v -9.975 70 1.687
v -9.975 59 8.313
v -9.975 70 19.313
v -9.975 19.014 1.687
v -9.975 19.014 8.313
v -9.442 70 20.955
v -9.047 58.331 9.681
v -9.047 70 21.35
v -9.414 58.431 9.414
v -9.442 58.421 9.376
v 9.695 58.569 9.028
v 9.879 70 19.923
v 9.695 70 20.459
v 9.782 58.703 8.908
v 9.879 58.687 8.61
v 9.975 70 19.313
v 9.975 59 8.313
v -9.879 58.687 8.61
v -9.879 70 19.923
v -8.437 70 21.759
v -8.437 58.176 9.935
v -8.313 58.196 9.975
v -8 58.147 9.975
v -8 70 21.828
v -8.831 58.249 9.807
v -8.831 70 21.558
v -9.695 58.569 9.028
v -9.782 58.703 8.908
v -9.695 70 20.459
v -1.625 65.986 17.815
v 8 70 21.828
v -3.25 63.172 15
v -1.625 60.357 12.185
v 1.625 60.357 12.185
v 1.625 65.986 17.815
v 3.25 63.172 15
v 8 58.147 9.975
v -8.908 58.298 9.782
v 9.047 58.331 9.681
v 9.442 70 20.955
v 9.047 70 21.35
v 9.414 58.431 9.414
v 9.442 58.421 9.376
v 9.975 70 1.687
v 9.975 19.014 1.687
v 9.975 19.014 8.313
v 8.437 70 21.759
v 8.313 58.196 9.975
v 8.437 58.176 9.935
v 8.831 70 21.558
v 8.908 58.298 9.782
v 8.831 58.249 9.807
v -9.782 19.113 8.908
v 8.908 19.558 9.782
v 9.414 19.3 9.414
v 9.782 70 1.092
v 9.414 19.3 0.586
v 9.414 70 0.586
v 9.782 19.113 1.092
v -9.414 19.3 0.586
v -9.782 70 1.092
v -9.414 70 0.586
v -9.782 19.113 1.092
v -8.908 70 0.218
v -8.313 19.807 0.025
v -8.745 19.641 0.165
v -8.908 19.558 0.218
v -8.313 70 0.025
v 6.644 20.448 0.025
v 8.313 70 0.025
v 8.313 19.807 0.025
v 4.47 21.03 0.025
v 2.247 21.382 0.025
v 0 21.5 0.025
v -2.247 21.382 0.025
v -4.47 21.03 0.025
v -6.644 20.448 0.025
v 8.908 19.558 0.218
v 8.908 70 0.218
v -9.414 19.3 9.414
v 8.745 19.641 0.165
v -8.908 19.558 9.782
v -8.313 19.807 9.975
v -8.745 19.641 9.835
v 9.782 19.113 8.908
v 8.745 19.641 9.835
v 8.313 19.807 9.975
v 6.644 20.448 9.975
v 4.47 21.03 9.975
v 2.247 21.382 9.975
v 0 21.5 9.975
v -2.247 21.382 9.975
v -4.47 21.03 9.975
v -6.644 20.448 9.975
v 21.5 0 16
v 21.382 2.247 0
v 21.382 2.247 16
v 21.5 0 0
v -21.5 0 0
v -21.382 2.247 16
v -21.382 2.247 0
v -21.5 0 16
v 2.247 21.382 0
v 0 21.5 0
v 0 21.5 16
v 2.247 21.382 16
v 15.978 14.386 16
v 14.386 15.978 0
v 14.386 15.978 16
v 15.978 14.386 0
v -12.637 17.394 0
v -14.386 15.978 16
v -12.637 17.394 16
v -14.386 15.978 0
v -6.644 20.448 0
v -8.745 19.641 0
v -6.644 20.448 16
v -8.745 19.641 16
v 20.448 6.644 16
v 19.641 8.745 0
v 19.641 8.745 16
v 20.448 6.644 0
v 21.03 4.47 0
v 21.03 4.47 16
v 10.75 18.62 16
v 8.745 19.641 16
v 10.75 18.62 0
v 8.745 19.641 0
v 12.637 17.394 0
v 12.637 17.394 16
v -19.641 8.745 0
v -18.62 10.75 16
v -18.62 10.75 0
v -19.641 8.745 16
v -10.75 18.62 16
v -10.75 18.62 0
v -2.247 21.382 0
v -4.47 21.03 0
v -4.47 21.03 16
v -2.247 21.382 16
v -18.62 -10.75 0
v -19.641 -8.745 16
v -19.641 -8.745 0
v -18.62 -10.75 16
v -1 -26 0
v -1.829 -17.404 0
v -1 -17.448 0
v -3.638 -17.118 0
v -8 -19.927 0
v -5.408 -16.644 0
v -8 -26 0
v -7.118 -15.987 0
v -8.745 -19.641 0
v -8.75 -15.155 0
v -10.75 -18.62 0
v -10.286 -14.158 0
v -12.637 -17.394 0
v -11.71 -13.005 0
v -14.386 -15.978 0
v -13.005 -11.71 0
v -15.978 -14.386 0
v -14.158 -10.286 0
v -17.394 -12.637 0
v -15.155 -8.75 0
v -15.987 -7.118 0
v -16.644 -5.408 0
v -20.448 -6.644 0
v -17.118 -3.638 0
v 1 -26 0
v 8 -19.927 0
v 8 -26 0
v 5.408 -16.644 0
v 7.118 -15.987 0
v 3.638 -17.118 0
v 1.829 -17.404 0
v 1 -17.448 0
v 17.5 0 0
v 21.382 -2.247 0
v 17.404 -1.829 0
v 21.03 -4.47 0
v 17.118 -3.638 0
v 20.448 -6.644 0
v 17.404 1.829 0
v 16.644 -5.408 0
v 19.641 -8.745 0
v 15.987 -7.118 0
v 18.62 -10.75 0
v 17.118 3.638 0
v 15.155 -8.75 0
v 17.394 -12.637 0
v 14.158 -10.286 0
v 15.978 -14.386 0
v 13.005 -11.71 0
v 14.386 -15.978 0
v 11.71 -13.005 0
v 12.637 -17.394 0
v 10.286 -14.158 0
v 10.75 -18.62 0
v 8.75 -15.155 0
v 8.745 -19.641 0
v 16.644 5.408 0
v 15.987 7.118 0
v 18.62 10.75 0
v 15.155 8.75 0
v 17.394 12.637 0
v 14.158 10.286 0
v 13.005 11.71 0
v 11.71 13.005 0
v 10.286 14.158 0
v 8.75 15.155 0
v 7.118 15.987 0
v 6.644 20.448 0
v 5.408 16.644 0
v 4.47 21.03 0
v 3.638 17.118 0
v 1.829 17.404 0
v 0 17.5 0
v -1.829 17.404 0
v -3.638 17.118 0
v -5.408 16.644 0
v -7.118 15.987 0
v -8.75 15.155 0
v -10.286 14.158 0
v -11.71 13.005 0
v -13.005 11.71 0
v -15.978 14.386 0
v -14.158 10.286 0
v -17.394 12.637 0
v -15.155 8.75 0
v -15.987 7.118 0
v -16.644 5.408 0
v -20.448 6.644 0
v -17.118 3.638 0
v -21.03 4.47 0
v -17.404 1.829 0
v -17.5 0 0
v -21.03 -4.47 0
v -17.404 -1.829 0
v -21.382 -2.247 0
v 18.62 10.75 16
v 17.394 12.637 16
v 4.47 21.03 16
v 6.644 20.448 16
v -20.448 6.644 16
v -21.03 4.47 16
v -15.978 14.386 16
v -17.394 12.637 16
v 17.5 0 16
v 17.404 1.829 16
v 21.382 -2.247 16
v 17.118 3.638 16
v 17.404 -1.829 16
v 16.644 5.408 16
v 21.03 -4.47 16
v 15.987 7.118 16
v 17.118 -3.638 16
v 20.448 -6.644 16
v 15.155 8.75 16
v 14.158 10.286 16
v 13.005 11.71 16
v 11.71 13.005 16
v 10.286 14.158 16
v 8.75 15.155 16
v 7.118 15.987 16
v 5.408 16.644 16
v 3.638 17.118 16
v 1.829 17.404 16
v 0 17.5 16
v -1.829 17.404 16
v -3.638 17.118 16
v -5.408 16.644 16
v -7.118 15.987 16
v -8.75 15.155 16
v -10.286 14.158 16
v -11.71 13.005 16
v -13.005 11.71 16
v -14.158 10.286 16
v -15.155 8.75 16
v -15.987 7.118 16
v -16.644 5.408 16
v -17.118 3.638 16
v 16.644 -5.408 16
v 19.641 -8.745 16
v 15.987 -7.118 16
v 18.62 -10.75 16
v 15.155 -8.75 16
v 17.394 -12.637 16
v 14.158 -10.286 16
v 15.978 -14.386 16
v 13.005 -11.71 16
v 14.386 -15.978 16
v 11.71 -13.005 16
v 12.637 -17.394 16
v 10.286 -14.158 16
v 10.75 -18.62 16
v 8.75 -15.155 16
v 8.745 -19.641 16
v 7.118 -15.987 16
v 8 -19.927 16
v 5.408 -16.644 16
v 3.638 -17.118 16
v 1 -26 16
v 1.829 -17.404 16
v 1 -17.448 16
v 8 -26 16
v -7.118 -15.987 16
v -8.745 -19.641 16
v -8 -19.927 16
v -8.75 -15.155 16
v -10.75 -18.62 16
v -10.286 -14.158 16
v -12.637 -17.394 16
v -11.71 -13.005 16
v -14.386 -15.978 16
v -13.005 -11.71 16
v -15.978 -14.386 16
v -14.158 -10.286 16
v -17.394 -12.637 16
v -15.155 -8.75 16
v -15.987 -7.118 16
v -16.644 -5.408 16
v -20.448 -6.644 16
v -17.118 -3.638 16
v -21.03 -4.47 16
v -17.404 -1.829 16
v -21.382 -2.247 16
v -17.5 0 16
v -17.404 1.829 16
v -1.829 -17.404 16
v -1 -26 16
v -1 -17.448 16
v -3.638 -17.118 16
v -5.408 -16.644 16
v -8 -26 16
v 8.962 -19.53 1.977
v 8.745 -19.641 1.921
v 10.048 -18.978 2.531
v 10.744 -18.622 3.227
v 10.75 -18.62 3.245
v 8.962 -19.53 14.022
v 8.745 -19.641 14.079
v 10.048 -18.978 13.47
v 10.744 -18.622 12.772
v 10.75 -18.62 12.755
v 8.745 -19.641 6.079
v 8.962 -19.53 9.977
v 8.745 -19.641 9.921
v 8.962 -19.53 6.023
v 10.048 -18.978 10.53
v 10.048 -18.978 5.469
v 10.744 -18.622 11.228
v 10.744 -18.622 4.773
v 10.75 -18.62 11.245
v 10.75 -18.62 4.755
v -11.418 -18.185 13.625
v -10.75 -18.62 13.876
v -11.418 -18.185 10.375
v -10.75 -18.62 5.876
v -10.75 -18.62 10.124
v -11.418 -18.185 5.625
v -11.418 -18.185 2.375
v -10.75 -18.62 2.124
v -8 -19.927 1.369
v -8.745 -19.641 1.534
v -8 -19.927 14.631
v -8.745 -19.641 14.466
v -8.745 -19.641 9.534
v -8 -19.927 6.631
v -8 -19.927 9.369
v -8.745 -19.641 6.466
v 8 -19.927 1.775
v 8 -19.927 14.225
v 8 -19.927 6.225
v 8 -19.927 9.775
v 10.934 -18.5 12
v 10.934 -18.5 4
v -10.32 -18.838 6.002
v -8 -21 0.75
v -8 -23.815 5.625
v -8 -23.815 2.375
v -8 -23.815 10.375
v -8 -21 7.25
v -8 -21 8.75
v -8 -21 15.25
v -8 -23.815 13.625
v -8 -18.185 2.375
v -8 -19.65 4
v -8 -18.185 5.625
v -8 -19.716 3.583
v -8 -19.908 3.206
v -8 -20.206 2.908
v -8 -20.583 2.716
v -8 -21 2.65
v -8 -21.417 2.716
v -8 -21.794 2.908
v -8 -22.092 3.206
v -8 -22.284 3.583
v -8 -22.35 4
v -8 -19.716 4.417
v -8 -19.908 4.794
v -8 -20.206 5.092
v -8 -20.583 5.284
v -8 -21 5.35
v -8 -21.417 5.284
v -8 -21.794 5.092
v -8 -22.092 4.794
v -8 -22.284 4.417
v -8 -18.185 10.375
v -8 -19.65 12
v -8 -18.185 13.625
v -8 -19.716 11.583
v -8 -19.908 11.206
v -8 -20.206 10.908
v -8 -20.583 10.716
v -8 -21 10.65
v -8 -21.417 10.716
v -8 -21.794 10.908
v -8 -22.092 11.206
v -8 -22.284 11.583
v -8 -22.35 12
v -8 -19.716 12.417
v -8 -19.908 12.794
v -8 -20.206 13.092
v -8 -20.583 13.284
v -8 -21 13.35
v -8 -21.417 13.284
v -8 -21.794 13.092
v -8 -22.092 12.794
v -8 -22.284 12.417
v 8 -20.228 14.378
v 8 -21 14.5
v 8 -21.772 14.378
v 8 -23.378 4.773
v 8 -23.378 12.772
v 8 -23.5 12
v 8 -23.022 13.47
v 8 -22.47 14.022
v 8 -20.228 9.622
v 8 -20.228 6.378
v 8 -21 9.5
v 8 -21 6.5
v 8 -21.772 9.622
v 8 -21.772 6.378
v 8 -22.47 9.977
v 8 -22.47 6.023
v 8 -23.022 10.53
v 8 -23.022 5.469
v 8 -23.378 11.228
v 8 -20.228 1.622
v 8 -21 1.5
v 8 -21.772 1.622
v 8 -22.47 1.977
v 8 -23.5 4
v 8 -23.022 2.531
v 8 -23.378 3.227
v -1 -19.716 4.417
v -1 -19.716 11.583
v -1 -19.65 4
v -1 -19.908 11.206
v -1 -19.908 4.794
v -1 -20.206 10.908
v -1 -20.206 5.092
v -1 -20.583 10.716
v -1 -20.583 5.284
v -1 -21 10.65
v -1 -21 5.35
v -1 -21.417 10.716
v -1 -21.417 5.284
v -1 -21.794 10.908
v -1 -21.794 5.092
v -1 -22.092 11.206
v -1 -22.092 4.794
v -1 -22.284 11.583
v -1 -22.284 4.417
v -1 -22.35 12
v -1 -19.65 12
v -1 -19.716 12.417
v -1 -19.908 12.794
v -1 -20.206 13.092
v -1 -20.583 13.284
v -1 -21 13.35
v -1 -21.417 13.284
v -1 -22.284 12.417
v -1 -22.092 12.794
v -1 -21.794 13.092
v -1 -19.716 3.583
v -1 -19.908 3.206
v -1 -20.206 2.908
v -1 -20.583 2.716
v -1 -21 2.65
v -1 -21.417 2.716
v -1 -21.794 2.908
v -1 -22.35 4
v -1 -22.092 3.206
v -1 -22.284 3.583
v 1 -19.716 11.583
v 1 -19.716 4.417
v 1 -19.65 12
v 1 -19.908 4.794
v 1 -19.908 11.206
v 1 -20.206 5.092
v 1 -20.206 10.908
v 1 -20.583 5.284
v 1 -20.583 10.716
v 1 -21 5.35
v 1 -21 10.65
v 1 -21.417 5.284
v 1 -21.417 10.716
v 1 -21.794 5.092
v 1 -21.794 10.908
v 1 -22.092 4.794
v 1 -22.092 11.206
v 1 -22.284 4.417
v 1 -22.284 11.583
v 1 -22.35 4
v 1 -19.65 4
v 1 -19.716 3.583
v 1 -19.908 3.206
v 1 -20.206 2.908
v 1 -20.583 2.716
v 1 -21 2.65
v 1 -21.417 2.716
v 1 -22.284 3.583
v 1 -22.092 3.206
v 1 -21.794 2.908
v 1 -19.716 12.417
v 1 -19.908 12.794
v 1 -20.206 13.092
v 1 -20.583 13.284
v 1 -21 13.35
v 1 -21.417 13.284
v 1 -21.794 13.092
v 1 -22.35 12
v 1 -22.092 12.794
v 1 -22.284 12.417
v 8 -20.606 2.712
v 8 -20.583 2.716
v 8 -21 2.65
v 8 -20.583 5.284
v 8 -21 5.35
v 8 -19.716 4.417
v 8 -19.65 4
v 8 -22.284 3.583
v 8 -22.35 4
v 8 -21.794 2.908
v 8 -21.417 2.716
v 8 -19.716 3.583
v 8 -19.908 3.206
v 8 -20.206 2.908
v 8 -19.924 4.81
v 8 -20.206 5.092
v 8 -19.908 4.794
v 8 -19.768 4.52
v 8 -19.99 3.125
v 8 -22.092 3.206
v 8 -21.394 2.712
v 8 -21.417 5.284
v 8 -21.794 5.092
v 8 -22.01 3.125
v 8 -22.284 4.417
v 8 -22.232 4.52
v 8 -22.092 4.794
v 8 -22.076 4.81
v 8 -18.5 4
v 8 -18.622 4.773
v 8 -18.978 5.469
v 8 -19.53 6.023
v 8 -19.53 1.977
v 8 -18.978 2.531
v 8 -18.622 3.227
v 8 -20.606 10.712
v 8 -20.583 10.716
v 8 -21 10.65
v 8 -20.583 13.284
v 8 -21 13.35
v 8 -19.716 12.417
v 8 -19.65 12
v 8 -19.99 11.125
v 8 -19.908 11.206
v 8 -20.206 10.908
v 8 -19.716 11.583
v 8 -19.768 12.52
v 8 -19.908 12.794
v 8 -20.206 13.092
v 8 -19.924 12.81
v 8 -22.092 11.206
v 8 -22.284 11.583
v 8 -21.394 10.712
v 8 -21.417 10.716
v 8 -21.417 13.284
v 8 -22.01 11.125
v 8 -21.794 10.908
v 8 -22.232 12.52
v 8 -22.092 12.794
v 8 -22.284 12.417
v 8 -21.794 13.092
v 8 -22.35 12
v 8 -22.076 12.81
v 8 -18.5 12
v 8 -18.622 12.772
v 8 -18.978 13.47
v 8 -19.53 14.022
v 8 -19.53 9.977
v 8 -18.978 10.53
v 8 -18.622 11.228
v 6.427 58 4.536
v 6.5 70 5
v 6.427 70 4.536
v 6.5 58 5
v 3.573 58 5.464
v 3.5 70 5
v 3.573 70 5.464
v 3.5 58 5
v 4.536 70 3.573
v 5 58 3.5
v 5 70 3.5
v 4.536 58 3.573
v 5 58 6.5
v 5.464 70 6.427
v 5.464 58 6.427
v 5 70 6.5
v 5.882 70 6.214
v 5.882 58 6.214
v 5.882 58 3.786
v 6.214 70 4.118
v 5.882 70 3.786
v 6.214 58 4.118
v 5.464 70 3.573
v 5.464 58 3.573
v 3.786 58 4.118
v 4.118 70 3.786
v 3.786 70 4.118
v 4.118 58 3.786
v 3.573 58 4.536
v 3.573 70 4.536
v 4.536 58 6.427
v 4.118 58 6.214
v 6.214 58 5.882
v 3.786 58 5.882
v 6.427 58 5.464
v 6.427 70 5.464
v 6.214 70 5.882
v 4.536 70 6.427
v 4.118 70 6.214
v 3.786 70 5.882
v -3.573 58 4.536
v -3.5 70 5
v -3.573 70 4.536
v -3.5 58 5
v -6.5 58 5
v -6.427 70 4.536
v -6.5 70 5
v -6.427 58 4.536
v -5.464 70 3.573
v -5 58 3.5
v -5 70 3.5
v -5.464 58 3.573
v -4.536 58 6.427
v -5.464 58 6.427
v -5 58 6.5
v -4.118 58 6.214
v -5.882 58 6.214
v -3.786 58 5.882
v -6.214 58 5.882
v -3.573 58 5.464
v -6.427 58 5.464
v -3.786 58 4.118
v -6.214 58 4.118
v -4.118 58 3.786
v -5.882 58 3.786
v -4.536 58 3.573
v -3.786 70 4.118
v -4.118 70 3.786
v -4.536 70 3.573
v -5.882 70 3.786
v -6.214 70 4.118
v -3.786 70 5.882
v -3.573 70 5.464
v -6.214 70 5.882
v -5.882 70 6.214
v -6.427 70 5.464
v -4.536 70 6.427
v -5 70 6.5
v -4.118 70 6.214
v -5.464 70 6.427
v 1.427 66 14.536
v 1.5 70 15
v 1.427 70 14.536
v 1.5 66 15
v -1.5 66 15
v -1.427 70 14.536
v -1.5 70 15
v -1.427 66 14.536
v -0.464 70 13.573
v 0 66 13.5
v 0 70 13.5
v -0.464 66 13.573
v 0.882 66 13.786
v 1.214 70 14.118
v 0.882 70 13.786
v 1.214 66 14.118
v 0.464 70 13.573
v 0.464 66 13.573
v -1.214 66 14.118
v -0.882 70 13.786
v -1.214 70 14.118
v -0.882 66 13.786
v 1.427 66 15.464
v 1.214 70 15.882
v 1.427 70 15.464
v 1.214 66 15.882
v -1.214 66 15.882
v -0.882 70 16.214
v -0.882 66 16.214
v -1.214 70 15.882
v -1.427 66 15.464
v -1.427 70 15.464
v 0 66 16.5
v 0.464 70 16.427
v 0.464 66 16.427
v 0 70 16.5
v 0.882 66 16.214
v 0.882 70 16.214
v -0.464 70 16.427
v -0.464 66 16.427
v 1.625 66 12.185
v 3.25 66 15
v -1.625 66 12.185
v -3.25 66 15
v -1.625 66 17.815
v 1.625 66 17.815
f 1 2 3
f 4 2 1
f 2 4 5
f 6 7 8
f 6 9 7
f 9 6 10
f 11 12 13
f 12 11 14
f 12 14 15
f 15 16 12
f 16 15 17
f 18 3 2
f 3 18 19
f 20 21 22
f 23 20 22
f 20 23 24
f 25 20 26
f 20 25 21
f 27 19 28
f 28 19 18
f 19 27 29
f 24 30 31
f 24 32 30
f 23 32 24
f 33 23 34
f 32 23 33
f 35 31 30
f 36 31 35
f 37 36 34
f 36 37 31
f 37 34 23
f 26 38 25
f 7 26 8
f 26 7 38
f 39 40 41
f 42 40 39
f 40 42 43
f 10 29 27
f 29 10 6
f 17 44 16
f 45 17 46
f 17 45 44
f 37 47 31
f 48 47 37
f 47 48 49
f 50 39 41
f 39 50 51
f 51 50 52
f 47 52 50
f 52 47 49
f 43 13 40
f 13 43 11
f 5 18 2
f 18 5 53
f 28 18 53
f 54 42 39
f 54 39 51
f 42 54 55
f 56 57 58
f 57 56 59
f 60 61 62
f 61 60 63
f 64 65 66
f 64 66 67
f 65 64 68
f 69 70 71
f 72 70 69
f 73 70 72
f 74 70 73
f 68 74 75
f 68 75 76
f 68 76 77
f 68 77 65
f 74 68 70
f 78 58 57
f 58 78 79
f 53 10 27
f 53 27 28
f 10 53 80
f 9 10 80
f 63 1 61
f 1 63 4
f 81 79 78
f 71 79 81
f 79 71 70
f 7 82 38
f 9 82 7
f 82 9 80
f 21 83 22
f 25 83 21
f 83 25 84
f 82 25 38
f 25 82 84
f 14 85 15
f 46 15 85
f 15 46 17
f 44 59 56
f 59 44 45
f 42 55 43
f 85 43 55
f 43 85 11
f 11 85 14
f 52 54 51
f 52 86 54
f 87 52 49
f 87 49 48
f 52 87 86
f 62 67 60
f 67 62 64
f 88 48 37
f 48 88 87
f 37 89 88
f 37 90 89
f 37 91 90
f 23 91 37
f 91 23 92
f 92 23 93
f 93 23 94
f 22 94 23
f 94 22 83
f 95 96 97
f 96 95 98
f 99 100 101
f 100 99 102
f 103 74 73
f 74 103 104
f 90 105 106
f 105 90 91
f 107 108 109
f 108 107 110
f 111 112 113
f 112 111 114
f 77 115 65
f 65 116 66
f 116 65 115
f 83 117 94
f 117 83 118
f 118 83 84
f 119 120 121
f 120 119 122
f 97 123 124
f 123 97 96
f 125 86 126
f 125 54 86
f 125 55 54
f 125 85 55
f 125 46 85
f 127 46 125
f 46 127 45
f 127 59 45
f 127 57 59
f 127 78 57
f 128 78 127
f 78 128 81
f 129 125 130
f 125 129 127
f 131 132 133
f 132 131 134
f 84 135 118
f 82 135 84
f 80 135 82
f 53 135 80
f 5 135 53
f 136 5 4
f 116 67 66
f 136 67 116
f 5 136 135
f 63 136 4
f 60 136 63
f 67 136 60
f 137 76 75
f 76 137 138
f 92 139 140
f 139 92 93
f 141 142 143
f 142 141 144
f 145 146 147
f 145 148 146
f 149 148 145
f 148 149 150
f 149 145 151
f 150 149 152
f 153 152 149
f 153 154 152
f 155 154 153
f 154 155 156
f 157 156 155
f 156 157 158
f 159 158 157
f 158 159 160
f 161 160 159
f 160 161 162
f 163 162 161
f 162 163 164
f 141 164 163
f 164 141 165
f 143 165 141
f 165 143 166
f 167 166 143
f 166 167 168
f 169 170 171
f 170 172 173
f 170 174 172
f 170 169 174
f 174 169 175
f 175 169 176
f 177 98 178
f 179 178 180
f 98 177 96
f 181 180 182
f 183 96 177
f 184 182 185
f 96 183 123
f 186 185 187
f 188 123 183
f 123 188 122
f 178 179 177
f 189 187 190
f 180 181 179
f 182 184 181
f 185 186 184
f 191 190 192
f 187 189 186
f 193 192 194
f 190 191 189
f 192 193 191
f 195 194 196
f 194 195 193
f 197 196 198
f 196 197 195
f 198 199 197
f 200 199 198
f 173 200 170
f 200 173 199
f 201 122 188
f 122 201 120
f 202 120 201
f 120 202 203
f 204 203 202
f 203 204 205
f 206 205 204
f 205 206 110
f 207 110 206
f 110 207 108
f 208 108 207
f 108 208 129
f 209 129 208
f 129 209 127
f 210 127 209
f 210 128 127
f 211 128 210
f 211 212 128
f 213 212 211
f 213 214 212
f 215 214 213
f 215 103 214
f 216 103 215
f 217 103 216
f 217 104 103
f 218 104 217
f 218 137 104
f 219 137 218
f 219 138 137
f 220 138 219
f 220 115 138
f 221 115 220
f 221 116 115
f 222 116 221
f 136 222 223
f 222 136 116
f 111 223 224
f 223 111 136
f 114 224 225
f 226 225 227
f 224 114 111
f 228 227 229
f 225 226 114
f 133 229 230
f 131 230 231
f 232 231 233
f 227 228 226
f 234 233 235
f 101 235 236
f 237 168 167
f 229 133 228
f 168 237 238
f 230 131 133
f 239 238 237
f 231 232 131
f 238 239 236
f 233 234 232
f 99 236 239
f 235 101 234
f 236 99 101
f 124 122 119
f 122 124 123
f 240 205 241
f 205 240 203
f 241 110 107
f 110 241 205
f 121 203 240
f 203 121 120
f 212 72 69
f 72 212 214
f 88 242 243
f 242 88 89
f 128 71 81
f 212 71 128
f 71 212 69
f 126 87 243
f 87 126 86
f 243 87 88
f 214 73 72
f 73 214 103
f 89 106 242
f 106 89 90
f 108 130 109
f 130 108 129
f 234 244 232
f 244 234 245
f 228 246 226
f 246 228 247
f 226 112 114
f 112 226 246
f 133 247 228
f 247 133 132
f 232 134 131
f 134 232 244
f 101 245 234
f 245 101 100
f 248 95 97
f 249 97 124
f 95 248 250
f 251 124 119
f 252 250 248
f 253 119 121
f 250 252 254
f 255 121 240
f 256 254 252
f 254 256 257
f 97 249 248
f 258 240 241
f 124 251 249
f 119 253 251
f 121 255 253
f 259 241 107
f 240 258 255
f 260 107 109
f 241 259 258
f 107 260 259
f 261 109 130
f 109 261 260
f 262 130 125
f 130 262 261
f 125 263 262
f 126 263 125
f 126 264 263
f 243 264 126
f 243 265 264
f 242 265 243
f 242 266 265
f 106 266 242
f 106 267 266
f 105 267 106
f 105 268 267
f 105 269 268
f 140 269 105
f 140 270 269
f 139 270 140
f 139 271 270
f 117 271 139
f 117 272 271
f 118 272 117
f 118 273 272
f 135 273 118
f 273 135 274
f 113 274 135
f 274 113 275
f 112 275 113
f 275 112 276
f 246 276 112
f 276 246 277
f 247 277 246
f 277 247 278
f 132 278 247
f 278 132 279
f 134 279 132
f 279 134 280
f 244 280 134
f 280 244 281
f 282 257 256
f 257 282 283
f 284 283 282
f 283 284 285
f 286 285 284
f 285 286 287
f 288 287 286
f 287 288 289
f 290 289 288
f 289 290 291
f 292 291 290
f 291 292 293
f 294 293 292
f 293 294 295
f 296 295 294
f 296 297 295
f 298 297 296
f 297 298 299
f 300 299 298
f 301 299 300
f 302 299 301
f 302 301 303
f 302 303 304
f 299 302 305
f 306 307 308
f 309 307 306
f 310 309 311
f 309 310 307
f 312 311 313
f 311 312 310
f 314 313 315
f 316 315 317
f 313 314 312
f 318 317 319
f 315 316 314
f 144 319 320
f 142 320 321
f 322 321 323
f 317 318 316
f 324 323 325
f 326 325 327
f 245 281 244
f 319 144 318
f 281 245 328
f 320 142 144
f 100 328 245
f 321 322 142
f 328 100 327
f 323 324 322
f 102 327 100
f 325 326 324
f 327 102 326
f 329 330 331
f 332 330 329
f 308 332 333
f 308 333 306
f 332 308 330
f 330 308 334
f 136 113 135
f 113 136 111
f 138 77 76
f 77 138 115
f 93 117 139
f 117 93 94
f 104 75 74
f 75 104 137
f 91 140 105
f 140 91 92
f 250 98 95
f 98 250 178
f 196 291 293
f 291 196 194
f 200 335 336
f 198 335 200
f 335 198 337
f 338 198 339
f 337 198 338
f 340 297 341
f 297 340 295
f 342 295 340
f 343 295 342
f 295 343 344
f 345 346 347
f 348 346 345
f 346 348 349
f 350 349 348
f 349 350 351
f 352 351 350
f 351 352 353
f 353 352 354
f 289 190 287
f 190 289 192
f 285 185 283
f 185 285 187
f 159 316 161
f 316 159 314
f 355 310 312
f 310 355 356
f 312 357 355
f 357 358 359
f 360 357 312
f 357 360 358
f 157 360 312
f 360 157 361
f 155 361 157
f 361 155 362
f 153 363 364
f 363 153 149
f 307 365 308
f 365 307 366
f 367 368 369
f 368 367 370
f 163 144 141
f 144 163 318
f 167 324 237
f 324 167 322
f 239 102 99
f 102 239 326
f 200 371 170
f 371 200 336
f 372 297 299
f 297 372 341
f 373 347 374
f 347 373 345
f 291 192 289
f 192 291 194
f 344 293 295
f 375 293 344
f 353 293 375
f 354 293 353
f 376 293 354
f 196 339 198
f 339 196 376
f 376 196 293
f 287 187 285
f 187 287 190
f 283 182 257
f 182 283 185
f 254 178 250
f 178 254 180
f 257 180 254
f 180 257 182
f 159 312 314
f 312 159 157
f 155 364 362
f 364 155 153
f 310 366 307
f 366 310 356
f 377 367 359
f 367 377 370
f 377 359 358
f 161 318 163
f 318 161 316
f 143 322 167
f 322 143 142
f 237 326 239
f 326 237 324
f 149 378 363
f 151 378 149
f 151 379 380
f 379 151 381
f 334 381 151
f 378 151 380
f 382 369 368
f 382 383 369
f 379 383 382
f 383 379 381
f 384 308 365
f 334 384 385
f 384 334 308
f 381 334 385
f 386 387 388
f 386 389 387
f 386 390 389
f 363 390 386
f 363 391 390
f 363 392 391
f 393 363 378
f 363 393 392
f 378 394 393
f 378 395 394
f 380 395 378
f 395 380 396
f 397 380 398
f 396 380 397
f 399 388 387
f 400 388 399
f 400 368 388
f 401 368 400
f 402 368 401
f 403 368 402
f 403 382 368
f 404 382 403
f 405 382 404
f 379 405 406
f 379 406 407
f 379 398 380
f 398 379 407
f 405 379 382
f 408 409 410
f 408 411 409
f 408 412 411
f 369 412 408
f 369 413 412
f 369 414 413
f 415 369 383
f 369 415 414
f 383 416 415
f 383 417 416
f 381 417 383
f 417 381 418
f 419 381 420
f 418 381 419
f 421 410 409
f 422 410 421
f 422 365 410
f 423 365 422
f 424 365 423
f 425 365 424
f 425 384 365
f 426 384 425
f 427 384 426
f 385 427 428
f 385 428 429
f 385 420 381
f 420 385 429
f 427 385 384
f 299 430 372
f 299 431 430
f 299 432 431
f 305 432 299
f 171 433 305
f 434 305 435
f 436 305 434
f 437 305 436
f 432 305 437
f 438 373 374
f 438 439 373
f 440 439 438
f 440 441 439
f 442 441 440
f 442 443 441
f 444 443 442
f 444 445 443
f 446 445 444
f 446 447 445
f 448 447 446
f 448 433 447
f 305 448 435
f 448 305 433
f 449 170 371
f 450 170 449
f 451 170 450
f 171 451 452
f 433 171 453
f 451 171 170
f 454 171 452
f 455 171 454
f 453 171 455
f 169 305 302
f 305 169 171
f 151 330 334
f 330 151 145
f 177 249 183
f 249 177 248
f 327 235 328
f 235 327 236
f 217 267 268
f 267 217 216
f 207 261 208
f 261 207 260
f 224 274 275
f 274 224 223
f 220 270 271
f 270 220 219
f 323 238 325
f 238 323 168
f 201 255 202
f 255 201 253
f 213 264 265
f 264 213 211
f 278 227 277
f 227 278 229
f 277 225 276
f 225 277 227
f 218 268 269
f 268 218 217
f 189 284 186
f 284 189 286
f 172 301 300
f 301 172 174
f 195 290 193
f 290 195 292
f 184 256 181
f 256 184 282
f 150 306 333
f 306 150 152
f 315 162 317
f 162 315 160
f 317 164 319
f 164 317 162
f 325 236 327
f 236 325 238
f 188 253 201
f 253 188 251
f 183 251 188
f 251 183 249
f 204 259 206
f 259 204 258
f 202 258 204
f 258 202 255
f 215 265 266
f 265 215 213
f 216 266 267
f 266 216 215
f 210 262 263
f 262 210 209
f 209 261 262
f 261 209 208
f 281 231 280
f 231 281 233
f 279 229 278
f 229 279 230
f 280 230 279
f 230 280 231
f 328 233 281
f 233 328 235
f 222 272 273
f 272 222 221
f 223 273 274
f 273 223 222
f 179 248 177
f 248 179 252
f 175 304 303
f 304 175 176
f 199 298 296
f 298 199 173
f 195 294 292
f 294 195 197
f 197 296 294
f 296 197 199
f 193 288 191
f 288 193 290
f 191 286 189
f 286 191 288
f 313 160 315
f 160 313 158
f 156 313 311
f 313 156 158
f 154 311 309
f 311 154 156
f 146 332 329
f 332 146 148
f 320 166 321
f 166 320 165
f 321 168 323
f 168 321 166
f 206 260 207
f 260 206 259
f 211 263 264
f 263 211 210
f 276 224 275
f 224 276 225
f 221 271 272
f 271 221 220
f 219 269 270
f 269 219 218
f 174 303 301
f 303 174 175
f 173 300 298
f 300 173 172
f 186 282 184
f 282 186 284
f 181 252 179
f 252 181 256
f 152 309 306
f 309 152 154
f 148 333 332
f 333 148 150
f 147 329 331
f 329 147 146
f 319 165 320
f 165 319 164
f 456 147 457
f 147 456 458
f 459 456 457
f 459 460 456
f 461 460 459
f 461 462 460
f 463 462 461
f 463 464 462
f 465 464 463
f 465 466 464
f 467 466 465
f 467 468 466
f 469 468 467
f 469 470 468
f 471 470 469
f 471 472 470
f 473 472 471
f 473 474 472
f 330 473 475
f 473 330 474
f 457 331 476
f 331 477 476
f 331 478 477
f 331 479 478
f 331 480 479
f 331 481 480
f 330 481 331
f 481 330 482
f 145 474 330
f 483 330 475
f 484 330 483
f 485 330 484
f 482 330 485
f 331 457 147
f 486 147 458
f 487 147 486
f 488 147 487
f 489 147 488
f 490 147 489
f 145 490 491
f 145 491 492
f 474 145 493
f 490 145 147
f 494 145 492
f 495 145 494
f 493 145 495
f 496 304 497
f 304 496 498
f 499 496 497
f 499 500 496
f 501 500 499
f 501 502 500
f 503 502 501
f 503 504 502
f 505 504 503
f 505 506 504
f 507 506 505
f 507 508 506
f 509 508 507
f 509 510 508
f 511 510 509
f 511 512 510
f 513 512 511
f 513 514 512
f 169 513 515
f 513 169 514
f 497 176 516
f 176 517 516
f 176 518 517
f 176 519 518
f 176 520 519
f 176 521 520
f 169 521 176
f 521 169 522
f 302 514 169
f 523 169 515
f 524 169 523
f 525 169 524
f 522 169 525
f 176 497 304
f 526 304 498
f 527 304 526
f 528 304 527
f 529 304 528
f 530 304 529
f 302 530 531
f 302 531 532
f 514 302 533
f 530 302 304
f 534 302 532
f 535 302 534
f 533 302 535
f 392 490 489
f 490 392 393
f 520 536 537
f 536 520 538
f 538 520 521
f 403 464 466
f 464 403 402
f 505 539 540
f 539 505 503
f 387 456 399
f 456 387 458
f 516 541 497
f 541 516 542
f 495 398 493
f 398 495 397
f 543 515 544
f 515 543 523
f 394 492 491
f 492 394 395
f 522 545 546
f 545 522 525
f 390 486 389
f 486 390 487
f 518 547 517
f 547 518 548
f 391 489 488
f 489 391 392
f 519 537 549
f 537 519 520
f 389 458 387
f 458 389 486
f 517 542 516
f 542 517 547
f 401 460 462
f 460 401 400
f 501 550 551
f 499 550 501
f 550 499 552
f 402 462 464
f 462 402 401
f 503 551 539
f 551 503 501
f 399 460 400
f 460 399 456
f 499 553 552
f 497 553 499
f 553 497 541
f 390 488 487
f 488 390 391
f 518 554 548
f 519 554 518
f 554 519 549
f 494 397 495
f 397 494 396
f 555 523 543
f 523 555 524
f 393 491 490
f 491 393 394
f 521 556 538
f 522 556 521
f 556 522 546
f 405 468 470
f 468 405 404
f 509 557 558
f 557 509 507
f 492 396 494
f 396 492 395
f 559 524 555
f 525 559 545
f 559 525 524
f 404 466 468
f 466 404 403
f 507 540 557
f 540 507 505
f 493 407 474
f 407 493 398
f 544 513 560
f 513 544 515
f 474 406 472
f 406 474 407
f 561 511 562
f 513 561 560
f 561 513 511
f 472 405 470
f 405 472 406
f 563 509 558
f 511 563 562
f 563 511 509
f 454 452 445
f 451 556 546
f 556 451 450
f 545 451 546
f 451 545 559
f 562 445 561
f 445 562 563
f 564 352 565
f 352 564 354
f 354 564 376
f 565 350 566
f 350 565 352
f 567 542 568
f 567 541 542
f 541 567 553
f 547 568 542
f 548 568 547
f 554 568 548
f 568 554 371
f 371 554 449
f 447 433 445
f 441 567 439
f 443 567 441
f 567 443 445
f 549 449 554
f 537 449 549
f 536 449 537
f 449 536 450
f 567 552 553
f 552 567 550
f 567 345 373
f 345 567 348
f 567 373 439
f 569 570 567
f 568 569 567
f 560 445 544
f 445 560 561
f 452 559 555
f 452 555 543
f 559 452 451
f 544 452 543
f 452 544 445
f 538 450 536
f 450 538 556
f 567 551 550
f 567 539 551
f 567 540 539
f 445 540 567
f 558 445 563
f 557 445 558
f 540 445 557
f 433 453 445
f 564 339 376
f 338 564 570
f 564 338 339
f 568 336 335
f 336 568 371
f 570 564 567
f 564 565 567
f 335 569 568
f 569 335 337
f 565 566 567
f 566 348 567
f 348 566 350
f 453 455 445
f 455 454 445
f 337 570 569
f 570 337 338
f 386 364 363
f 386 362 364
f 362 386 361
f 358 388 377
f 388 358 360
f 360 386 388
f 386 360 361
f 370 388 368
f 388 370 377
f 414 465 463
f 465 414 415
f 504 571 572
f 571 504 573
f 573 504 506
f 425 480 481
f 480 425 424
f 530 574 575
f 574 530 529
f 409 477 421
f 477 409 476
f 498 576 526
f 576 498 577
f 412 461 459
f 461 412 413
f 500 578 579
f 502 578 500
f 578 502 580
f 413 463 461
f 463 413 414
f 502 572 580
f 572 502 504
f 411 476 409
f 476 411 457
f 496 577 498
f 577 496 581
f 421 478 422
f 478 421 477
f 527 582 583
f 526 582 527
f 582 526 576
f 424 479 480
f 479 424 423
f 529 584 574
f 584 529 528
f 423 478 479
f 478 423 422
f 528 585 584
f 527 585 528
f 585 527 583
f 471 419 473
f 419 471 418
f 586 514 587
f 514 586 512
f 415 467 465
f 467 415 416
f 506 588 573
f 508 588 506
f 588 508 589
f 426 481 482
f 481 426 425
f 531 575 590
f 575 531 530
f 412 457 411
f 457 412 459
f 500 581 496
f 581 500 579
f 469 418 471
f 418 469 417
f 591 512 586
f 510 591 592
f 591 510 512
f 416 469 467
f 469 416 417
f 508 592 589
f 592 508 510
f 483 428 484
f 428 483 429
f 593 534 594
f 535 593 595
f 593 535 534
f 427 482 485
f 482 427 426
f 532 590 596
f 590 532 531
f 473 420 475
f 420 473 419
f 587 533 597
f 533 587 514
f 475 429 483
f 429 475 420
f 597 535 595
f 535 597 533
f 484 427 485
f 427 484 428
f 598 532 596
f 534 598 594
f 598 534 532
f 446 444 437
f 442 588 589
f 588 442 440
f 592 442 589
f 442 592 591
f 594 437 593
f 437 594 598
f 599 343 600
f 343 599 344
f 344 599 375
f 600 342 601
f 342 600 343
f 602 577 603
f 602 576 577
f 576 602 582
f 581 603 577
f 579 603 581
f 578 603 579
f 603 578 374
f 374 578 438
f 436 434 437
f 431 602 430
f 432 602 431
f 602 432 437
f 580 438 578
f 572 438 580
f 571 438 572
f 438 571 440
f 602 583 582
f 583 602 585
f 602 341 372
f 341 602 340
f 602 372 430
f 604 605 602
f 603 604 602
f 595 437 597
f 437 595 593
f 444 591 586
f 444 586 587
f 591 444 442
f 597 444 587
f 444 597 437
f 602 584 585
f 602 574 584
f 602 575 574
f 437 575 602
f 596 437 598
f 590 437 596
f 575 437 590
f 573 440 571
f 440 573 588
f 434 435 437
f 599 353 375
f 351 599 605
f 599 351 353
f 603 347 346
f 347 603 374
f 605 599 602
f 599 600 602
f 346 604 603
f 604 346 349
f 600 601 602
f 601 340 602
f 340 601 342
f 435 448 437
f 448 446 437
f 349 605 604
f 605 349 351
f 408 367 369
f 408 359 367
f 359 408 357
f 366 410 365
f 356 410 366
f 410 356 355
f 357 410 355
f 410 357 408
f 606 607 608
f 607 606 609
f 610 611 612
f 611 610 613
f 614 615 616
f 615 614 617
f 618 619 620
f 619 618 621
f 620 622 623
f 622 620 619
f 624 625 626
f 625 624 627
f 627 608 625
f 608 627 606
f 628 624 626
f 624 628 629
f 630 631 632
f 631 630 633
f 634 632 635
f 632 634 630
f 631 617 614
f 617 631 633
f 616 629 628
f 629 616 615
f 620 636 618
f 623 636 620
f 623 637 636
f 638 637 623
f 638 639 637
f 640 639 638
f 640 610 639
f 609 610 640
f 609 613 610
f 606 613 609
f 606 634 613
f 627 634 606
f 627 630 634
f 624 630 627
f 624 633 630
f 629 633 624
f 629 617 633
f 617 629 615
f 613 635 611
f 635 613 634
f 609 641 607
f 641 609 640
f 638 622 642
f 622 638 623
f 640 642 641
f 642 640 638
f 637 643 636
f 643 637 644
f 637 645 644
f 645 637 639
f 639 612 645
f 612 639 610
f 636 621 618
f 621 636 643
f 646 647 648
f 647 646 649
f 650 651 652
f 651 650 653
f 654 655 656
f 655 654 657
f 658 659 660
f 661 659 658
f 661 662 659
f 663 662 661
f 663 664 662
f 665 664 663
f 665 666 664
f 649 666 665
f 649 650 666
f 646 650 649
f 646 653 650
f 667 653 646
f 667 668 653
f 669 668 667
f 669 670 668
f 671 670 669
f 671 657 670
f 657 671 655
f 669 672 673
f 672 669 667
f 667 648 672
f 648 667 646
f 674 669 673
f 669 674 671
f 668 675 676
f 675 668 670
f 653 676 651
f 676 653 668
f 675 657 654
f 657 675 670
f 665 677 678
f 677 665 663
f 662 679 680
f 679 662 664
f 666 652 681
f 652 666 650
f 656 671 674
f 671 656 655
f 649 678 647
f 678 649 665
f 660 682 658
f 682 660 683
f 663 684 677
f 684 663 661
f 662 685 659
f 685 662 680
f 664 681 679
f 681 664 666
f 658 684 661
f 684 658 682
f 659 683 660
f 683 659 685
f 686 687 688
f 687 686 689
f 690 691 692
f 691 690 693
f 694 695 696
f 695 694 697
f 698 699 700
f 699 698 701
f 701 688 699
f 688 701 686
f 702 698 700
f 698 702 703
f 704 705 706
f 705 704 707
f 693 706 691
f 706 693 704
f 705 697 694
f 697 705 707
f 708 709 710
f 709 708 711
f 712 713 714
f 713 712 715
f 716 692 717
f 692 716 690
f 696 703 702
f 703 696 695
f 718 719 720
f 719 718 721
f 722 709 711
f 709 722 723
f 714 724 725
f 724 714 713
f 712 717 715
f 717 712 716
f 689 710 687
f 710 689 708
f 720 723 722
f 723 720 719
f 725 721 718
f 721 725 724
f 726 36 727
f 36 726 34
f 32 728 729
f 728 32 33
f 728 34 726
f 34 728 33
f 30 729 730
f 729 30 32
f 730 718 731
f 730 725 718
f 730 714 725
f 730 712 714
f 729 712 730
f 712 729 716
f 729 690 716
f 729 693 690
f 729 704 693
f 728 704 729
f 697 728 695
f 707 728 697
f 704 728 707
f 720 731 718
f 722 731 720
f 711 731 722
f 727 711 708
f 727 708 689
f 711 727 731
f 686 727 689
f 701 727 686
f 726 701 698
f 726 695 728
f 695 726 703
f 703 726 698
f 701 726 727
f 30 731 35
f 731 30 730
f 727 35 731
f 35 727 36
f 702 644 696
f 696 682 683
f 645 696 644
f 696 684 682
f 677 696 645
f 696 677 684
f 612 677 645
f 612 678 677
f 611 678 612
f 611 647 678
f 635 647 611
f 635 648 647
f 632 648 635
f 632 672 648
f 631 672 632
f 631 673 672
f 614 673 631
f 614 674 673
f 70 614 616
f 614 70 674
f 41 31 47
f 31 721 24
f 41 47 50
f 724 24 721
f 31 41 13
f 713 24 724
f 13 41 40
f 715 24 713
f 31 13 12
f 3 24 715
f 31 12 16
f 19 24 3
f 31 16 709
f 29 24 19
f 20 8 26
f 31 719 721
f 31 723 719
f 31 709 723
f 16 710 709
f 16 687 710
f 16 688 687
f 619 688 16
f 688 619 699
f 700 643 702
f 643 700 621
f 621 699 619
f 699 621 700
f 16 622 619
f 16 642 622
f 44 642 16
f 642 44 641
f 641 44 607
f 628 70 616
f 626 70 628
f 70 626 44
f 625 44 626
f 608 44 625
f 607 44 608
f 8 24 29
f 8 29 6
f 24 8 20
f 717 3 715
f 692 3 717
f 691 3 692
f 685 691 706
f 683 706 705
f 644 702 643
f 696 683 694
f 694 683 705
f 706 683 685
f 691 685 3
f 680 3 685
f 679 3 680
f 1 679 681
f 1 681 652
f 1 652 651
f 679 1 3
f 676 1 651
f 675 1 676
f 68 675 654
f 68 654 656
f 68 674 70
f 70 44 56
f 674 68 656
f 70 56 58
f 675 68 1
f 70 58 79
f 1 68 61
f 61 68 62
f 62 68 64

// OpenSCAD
$fn=20;

difference(){
union(){
cylinder(d=43,h=16,$fn=60);
translate([-8,9,2])
minkowski(){
sphere(d=4);
union(){    
cube(size=[16,66,6]);
translate([0,44,0])rotate([90,0,90])
linear_extrude(height=16)polygon([[0,0],[20,0],[20,20]]);
}    
}
translate([-8,-26,0]) cube(size=[16,8,16]);
}
translate([0,0,-1]) cylinder(d=35,h=22,$fn=60);
translate([-1,-35,-1]) cube(size=[2,20,22]);

translate ([-15,-21,4])rotate([0,90,0])
cylinder(d=2.7,h=100);
translate ([8,-21,4])rotate([0,90,0])
cylinder(d=5,h=100);
translate ([-18,-21,4])rotate([0,90,0])
cylinder(d=6.5,h=10,$fn=6);

translate ([-15,-21,12])rotate([0,90,0])
cylinder(d=2.7,h=100);
translate ([8,-21,12])rotate([0,90,0])
cylinder(d=5,h=100);
translate ([-18,-21,12])rotate([0,90,0])
cylinder(d=6.5,h=10,$fn=6);

translate([5,58,5])rotate([-90,0,0])
cylinder(d=3,h=100);
translate([-5,58,5])rotate([-90,0,0])
cylinder(d=3,h=100);

translate([0,60,15])rotate([-90,0,0])
cylinder(d=3,h=100);
translate([0,56,15])rotate([-90,0,0])
cylinder(d=6.5,h=10,$fn=6);

translate([0,90,0])cube([60,40,60],center=true);
}
